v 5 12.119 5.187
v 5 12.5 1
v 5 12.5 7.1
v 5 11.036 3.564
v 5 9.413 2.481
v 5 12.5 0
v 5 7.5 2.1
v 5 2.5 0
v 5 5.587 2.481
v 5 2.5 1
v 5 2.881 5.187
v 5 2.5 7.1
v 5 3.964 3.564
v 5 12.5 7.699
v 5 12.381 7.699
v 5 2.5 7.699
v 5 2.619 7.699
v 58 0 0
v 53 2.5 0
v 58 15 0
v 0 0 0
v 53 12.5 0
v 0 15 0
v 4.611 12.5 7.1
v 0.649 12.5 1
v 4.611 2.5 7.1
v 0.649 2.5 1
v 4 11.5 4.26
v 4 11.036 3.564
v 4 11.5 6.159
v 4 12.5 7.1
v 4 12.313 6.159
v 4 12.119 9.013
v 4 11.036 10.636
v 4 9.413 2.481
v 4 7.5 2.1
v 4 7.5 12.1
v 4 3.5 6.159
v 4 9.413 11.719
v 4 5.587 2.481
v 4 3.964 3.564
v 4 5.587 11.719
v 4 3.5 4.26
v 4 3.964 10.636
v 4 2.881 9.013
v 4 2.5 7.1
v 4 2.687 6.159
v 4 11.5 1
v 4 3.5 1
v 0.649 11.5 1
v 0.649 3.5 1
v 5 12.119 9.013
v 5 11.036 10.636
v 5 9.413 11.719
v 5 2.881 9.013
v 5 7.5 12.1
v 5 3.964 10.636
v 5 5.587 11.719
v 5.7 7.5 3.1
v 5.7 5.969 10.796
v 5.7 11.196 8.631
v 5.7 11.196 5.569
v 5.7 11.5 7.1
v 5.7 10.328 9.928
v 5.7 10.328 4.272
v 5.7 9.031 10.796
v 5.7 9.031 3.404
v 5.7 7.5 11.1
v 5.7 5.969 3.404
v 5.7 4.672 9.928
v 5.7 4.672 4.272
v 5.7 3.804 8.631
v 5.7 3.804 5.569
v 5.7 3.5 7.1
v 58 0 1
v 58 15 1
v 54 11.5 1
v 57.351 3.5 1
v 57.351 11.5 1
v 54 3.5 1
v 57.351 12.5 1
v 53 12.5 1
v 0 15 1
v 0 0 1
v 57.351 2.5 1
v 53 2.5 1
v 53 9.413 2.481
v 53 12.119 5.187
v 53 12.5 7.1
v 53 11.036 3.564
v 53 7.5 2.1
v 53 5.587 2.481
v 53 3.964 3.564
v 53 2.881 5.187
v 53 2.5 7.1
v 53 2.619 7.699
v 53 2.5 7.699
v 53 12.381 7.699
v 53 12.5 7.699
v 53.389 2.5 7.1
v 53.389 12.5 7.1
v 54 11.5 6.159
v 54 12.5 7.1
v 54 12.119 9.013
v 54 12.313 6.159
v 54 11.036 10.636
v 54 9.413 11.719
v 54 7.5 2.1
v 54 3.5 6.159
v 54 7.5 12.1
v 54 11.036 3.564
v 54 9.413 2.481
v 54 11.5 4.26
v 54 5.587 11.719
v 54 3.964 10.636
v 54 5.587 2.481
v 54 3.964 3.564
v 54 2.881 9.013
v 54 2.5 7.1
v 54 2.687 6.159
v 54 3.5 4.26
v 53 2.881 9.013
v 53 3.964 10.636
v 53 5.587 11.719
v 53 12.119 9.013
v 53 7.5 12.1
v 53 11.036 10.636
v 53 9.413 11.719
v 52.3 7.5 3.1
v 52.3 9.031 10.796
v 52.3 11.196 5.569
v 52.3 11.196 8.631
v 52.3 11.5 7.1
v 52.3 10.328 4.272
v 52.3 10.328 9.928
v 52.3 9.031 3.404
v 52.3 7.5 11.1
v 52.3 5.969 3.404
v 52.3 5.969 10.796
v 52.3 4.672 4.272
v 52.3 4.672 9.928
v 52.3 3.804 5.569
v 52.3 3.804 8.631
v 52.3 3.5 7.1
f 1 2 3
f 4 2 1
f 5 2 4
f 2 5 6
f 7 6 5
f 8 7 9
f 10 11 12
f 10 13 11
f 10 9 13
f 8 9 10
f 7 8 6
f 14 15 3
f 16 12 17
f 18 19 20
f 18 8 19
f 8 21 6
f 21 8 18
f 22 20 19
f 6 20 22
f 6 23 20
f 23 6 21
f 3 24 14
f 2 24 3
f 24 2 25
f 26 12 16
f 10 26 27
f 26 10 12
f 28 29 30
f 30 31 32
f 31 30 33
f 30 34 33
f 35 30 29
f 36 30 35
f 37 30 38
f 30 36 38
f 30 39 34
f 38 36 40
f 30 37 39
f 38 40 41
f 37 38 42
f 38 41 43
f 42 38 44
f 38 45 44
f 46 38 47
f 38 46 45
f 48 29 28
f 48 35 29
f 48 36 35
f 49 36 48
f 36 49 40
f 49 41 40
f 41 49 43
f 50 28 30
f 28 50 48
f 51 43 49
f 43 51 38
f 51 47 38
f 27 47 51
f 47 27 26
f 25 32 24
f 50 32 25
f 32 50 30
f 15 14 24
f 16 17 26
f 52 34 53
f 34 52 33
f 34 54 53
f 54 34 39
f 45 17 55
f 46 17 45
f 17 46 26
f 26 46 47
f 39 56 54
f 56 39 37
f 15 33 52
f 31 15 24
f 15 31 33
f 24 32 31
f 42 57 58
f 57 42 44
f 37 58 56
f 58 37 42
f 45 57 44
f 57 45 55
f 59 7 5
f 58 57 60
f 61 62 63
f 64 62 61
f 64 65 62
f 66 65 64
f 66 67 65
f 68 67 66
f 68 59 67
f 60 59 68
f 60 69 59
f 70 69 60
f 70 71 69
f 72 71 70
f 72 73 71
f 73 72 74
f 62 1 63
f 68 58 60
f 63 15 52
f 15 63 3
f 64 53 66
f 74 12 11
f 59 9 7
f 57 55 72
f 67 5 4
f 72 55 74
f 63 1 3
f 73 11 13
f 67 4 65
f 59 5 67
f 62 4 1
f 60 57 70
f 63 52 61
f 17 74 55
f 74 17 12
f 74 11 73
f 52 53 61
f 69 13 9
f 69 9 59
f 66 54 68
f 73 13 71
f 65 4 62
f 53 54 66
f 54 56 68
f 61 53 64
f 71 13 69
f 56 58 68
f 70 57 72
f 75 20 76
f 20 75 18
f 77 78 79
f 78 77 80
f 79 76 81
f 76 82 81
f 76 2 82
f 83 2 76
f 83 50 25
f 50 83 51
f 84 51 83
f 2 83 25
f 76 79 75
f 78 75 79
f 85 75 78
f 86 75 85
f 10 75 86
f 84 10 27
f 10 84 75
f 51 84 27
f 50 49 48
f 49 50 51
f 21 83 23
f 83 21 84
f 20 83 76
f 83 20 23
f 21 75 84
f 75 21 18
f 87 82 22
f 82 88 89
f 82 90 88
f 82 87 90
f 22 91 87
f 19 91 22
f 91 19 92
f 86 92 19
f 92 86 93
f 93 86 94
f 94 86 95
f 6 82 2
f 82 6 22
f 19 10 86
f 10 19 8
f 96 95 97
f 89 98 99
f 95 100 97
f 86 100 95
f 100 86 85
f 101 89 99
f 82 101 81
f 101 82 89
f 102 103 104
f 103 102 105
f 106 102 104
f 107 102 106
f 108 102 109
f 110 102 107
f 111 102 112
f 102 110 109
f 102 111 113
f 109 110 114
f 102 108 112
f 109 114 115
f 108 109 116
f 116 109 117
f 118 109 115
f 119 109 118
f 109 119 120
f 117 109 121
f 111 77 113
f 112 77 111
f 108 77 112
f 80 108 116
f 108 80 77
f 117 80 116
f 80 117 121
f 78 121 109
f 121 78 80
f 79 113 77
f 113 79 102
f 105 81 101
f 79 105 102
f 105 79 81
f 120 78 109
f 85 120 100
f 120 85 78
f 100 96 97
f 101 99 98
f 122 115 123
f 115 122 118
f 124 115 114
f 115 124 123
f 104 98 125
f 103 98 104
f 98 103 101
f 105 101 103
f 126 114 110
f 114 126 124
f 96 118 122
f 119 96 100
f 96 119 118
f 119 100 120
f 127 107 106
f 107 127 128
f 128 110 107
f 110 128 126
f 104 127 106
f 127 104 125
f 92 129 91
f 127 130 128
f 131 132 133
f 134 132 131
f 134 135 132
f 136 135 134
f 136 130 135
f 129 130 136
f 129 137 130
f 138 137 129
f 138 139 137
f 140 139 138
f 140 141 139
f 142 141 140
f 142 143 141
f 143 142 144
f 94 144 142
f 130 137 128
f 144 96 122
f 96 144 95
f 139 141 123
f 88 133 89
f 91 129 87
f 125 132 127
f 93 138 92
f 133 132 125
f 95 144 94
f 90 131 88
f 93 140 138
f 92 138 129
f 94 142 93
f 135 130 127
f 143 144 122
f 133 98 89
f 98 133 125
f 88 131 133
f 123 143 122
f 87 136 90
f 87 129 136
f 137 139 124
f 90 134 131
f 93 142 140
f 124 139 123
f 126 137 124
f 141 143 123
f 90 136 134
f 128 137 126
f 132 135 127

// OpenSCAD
length=48;
diam=14.2;
width=63.4;
barThick=5;
wholesDist=52;
margin=5;

baseTh=1;

difference() {
    cube([length+2*margin, 10+margin,baseTh]);
    translate([margin, margin/2, -0.1]) cube([length, 10,baseTh+0.2]);
}

translate([0,margin/2, 0]) Stand();
translate([length+2*margin,10+margin/2, 0]) rotate([0,0,180]) Stand();

module Stand(){
    difference() {
        diam=10;
        cube([margin, diam, diam]);
        translate ([0, baseTh, 0]) cube([margin-baseTh, diam-2*baseTh, diam+0.1]);
        rotate([0,33,0]) translate ([-2*margin,-0.1,0]) cube([2*margin, 2*diam, 2*diam]);
    }
    translate([margin-baseTh, 5, diam/2]) rotate([0,90,0]) {
        cylinder(h=baseTh, d=10);
        translate([0,0,baseTh])cylinder(h=0.7, d1=10, d2=8);
    };
}
